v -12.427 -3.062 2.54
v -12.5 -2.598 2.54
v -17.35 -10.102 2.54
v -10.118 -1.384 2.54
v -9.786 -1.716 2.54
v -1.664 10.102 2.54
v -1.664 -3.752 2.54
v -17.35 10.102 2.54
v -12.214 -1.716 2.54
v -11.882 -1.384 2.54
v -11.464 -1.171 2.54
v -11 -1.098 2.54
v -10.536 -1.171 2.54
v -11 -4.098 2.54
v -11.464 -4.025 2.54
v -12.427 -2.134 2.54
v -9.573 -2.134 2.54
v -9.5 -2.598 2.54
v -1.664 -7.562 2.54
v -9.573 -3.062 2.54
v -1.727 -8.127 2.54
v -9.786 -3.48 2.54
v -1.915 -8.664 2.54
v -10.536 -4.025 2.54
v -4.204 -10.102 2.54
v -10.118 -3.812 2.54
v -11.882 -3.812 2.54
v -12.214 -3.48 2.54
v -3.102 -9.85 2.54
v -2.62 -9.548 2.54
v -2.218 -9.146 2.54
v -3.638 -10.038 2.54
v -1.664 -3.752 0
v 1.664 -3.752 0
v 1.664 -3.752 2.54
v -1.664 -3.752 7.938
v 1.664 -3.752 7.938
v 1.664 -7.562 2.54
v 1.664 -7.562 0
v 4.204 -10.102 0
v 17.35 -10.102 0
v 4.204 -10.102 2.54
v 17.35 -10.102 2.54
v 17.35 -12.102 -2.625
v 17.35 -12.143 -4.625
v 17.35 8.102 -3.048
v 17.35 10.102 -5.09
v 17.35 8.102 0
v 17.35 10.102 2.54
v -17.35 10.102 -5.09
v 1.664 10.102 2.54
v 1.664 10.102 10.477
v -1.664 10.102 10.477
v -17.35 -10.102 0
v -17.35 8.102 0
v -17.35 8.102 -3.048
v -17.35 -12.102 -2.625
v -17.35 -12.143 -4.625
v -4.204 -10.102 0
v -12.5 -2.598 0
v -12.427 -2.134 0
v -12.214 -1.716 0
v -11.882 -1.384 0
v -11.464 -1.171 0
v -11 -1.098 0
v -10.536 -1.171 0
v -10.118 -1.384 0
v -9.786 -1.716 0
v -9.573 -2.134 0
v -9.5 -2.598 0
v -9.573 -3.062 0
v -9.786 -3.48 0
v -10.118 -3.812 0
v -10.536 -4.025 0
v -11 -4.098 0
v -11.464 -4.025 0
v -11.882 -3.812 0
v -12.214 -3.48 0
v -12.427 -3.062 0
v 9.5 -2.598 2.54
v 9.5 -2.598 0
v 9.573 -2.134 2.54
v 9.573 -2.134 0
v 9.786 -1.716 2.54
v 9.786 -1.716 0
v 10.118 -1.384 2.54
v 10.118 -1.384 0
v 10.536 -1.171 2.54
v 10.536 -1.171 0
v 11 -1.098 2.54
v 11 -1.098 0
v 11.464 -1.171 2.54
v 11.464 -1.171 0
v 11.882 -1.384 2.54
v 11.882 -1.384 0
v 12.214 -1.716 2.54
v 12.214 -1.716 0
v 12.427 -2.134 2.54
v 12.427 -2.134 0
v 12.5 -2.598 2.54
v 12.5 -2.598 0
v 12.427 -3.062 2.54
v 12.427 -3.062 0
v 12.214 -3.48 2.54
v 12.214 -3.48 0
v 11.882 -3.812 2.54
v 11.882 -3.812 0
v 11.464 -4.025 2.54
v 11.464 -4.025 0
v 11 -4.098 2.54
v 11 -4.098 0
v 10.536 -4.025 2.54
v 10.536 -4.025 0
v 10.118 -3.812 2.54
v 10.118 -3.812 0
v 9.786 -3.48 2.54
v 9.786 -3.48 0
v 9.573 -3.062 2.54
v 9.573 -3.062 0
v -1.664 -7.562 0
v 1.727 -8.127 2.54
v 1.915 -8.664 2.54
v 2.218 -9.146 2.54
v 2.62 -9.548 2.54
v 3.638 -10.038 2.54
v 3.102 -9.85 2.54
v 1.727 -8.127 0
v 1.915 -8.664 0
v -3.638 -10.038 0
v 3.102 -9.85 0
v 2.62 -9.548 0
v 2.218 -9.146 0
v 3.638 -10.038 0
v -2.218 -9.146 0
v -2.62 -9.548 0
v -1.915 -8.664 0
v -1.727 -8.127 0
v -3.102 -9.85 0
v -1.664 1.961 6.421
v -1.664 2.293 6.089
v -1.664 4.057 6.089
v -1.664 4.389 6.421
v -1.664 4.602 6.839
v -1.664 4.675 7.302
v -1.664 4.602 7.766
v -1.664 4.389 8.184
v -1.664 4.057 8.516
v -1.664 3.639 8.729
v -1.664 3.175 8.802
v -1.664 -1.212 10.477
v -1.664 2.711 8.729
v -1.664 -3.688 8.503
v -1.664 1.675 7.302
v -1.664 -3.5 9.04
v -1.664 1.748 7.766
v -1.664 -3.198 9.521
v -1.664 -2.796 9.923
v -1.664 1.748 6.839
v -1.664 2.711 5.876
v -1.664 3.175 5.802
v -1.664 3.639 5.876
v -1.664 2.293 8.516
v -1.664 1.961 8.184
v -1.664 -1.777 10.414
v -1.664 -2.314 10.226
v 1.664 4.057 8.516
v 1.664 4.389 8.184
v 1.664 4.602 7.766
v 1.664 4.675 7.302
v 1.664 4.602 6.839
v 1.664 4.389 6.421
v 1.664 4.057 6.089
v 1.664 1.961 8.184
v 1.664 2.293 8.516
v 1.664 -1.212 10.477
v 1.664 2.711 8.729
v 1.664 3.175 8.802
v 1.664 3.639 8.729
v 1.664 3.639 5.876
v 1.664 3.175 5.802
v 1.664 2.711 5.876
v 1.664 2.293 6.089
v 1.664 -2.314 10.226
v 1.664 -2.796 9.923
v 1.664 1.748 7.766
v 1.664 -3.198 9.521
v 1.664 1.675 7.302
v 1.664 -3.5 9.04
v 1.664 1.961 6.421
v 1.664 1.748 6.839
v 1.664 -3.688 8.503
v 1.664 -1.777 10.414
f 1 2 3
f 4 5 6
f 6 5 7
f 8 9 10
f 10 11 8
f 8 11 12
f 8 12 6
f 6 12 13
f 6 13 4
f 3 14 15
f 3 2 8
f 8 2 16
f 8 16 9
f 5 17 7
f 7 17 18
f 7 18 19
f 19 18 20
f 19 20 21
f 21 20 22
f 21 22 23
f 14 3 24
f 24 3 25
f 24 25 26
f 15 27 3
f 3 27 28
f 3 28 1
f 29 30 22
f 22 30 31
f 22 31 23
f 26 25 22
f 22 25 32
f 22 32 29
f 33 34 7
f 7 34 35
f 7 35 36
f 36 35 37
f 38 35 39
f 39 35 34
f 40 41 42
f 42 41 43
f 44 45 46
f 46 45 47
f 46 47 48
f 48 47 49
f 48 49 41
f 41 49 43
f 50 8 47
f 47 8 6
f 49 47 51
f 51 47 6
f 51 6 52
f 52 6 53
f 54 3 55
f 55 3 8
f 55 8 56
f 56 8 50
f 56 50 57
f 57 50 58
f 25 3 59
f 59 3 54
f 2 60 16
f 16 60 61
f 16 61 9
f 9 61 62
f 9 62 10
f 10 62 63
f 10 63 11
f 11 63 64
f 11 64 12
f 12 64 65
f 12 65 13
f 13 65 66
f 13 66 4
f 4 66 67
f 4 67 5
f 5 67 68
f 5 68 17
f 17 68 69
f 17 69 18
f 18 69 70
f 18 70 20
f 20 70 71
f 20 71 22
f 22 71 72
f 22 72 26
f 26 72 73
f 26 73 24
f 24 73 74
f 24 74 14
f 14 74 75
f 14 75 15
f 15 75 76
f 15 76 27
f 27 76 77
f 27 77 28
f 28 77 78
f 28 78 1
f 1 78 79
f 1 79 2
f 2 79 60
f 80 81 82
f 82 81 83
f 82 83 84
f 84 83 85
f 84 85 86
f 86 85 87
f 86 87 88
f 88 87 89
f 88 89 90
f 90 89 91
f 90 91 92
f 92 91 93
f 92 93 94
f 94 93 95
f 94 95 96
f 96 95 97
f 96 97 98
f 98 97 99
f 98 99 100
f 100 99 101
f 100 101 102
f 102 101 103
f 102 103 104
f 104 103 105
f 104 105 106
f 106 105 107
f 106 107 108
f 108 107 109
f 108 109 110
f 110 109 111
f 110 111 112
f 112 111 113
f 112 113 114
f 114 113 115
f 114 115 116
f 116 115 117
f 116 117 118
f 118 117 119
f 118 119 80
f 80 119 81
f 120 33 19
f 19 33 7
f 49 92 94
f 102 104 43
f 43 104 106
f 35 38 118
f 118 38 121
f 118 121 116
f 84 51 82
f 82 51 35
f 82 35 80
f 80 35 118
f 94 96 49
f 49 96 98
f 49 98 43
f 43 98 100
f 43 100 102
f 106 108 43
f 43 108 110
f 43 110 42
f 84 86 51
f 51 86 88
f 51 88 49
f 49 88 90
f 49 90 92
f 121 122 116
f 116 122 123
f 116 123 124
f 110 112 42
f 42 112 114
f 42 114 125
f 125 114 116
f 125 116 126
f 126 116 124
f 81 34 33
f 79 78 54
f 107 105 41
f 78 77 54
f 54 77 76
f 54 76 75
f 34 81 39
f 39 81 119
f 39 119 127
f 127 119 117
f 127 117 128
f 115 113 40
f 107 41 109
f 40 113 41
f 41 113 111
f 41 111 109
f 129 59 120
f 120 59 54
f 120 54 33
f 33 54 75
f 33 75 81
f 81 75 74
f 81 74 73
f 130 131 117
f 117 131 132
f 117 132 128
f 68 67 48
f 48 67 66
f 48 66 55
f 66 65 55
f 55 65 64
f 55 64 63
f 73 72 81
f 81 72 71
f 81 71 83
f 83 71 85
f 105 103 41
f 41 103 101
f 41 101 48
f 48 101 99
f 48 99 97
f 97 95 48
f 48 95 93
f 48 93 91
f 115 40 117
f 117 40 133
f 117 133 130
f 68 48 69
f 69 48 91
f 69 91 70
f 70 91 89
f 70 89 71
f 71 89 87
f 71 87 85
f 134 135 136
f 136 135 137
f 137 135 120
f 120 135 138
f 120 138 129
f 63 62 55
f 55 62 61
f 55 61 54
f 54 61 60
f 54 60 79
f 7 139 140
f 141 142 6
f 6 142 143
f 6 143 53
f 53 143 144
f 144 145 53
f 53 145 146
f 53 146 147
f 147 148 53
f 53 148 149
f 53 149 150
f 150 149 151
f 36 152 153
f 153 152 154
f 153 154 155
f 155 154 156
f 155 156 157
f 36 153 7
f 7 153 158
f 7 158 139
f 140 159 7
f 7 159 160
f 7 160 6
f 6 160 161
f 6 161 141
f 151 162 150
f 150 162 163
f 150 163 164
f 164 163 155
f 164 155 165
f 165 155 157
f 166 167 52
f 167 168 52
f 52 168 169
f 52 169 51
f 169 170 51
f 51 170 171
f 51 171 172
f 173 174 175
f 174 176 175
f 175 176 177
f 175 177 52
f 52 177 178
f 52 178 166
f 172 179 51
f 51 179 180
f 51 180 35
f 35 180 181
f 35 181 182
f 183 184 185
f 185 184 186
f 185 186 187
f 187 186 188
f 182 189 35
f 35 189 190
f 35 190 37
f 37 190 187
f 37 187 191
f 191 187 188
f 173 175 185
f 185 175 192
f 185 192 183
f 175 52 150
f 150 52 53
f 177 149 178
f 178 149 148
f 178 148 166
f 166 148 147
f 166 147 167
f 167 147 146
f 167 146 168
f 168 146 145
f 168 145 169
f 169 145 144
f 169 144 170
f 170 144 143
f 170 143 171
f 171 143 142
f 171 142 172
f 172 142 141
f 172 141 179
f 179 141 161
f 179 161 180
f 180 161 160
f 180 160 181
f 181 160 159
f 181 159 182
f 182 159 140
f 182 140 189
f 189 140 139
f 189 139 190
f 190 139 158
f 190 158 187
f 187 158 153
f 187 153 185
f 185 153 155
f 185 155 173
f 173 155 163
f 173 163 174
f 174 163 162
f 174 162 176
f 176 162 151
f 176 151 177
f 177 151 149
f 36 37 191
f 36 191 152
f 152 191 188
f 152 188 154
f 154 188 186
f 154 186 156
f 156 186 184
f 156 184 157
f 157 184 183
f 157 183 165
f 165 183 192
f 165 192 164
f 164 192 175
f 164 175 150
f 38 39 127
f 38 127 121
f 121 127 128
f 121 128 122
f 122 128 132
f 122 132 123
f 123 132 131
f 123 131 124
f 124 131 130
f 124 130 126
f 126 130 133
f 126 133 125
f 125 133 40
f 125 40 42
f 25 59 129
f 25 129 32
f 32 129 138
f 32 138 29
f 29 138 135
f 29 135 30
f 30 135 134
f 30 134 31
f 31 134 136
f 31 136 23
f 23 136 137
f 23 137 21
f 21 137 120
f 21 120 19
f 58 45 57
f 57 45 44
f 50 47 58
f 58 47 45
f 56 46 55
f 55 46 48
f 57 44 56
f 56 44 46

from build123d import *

# Parameters (mm, degrees)
SKETCH1_R           = 1.5
BOSS_EXTRUDE1_DEPTH = 2.54
SKETCH2_W           = 3.3274
SKETCH2_H           = 13.8539982
BOSS_EXTRUDE2_DEPTH = 7.9375
SKETCH3_R           = 1.5
CUT_EXTRUDE1_DEPTH  = 20.0137
FILLET1_R           = 2.54
FILLET3_R           = 2.54
BOSS_EXTRUDE3_DEPTH = 34.7


with BuildPart() as part:
    # Sketch1 → Boss-Extrude1 (new body)
    with BuildSketch(Plane.XY):
        Polygon((17.35, 10.1019991), (-17.35, 10.1019991), (-17.35, -10.1019991), (-1.6637, -10.1019991), (-1.6637, -3.7519991), (1.6637, -3.7519991), (1.6637, -10.1019991), (17.35, -10.1019991), align=None)
        with Locations((-11, -2.5980009)):
            Circle(SKETCH1_R, mode=Mode.SUBTRACT)
        with Locations((11, -2.5980009)):
            Circle(SKETCH1_R, mode=Mode.SUBTRACT)
    extrude(amount=BOSS_EXTRUDE1_DEPTH)

    # Sketch2 → Boss-Extrude2 (add)
    with BuildSketch(Plane.XY.offset(2.54)):
        with Locations((0, 3.175)):
            Rectangle(SKETCH2_W, SKETCH2_H)
    extrude(amount=BOSS_EXTRUDE2_DEPTH)

    # Sketch3 → Cut-Extrude1 (cut, through all)
    with BuildSketch(Plane.ZY.offset(1.6637)):
        with Locations((7.3025, 3.175)):
            Circle(SKETCH3_R)
    extrude(amount=-CUT_EXTRUDE1_DEPTH, mode=Mode.SUBTRACT)

    # Fillet1
    fillet1_edges = [part.edges().sort_by_distance(p)[0] for p in [
        (0, -3.7519991, 10.4775),
    ]]
    fillet(fillet1_edges, radius=FILLET1_R)

    # Fillet3
    fillet3_edges = [part.edges().sort_by_distance(p)[0] for p in [
        (-1.6637, -10.1019991, 1.27),
        (1.6637, -10.1019991, 1.27),
    ]]
    fillet(fillet3_edges, radius=FILLET3_R)

    # Sketch4 → Boss-Extrude3 (add)
    with BuildSketch(Plane(origin=(17.35, 0, 0), x_dir=(0, 0, -1), z_dir=(1, 0, 0))):
        Polygon((2.625150229, -12.101561201), (2.667, -10.1019991), (4.666562101, -10.143848871), (4.62471233, -12.143410972), align=None)
        Polygon((5.090296931, 10.1019991), (0, 10.1019991), (0, 8.1019991), (3.048, 8.1019991), (2.667, -10.1019991), (4.666562101, -10.143848871), align=None)
    extrude(amount=-BOSS_EXTRUDE3_DEPTH)


solid = part.part
